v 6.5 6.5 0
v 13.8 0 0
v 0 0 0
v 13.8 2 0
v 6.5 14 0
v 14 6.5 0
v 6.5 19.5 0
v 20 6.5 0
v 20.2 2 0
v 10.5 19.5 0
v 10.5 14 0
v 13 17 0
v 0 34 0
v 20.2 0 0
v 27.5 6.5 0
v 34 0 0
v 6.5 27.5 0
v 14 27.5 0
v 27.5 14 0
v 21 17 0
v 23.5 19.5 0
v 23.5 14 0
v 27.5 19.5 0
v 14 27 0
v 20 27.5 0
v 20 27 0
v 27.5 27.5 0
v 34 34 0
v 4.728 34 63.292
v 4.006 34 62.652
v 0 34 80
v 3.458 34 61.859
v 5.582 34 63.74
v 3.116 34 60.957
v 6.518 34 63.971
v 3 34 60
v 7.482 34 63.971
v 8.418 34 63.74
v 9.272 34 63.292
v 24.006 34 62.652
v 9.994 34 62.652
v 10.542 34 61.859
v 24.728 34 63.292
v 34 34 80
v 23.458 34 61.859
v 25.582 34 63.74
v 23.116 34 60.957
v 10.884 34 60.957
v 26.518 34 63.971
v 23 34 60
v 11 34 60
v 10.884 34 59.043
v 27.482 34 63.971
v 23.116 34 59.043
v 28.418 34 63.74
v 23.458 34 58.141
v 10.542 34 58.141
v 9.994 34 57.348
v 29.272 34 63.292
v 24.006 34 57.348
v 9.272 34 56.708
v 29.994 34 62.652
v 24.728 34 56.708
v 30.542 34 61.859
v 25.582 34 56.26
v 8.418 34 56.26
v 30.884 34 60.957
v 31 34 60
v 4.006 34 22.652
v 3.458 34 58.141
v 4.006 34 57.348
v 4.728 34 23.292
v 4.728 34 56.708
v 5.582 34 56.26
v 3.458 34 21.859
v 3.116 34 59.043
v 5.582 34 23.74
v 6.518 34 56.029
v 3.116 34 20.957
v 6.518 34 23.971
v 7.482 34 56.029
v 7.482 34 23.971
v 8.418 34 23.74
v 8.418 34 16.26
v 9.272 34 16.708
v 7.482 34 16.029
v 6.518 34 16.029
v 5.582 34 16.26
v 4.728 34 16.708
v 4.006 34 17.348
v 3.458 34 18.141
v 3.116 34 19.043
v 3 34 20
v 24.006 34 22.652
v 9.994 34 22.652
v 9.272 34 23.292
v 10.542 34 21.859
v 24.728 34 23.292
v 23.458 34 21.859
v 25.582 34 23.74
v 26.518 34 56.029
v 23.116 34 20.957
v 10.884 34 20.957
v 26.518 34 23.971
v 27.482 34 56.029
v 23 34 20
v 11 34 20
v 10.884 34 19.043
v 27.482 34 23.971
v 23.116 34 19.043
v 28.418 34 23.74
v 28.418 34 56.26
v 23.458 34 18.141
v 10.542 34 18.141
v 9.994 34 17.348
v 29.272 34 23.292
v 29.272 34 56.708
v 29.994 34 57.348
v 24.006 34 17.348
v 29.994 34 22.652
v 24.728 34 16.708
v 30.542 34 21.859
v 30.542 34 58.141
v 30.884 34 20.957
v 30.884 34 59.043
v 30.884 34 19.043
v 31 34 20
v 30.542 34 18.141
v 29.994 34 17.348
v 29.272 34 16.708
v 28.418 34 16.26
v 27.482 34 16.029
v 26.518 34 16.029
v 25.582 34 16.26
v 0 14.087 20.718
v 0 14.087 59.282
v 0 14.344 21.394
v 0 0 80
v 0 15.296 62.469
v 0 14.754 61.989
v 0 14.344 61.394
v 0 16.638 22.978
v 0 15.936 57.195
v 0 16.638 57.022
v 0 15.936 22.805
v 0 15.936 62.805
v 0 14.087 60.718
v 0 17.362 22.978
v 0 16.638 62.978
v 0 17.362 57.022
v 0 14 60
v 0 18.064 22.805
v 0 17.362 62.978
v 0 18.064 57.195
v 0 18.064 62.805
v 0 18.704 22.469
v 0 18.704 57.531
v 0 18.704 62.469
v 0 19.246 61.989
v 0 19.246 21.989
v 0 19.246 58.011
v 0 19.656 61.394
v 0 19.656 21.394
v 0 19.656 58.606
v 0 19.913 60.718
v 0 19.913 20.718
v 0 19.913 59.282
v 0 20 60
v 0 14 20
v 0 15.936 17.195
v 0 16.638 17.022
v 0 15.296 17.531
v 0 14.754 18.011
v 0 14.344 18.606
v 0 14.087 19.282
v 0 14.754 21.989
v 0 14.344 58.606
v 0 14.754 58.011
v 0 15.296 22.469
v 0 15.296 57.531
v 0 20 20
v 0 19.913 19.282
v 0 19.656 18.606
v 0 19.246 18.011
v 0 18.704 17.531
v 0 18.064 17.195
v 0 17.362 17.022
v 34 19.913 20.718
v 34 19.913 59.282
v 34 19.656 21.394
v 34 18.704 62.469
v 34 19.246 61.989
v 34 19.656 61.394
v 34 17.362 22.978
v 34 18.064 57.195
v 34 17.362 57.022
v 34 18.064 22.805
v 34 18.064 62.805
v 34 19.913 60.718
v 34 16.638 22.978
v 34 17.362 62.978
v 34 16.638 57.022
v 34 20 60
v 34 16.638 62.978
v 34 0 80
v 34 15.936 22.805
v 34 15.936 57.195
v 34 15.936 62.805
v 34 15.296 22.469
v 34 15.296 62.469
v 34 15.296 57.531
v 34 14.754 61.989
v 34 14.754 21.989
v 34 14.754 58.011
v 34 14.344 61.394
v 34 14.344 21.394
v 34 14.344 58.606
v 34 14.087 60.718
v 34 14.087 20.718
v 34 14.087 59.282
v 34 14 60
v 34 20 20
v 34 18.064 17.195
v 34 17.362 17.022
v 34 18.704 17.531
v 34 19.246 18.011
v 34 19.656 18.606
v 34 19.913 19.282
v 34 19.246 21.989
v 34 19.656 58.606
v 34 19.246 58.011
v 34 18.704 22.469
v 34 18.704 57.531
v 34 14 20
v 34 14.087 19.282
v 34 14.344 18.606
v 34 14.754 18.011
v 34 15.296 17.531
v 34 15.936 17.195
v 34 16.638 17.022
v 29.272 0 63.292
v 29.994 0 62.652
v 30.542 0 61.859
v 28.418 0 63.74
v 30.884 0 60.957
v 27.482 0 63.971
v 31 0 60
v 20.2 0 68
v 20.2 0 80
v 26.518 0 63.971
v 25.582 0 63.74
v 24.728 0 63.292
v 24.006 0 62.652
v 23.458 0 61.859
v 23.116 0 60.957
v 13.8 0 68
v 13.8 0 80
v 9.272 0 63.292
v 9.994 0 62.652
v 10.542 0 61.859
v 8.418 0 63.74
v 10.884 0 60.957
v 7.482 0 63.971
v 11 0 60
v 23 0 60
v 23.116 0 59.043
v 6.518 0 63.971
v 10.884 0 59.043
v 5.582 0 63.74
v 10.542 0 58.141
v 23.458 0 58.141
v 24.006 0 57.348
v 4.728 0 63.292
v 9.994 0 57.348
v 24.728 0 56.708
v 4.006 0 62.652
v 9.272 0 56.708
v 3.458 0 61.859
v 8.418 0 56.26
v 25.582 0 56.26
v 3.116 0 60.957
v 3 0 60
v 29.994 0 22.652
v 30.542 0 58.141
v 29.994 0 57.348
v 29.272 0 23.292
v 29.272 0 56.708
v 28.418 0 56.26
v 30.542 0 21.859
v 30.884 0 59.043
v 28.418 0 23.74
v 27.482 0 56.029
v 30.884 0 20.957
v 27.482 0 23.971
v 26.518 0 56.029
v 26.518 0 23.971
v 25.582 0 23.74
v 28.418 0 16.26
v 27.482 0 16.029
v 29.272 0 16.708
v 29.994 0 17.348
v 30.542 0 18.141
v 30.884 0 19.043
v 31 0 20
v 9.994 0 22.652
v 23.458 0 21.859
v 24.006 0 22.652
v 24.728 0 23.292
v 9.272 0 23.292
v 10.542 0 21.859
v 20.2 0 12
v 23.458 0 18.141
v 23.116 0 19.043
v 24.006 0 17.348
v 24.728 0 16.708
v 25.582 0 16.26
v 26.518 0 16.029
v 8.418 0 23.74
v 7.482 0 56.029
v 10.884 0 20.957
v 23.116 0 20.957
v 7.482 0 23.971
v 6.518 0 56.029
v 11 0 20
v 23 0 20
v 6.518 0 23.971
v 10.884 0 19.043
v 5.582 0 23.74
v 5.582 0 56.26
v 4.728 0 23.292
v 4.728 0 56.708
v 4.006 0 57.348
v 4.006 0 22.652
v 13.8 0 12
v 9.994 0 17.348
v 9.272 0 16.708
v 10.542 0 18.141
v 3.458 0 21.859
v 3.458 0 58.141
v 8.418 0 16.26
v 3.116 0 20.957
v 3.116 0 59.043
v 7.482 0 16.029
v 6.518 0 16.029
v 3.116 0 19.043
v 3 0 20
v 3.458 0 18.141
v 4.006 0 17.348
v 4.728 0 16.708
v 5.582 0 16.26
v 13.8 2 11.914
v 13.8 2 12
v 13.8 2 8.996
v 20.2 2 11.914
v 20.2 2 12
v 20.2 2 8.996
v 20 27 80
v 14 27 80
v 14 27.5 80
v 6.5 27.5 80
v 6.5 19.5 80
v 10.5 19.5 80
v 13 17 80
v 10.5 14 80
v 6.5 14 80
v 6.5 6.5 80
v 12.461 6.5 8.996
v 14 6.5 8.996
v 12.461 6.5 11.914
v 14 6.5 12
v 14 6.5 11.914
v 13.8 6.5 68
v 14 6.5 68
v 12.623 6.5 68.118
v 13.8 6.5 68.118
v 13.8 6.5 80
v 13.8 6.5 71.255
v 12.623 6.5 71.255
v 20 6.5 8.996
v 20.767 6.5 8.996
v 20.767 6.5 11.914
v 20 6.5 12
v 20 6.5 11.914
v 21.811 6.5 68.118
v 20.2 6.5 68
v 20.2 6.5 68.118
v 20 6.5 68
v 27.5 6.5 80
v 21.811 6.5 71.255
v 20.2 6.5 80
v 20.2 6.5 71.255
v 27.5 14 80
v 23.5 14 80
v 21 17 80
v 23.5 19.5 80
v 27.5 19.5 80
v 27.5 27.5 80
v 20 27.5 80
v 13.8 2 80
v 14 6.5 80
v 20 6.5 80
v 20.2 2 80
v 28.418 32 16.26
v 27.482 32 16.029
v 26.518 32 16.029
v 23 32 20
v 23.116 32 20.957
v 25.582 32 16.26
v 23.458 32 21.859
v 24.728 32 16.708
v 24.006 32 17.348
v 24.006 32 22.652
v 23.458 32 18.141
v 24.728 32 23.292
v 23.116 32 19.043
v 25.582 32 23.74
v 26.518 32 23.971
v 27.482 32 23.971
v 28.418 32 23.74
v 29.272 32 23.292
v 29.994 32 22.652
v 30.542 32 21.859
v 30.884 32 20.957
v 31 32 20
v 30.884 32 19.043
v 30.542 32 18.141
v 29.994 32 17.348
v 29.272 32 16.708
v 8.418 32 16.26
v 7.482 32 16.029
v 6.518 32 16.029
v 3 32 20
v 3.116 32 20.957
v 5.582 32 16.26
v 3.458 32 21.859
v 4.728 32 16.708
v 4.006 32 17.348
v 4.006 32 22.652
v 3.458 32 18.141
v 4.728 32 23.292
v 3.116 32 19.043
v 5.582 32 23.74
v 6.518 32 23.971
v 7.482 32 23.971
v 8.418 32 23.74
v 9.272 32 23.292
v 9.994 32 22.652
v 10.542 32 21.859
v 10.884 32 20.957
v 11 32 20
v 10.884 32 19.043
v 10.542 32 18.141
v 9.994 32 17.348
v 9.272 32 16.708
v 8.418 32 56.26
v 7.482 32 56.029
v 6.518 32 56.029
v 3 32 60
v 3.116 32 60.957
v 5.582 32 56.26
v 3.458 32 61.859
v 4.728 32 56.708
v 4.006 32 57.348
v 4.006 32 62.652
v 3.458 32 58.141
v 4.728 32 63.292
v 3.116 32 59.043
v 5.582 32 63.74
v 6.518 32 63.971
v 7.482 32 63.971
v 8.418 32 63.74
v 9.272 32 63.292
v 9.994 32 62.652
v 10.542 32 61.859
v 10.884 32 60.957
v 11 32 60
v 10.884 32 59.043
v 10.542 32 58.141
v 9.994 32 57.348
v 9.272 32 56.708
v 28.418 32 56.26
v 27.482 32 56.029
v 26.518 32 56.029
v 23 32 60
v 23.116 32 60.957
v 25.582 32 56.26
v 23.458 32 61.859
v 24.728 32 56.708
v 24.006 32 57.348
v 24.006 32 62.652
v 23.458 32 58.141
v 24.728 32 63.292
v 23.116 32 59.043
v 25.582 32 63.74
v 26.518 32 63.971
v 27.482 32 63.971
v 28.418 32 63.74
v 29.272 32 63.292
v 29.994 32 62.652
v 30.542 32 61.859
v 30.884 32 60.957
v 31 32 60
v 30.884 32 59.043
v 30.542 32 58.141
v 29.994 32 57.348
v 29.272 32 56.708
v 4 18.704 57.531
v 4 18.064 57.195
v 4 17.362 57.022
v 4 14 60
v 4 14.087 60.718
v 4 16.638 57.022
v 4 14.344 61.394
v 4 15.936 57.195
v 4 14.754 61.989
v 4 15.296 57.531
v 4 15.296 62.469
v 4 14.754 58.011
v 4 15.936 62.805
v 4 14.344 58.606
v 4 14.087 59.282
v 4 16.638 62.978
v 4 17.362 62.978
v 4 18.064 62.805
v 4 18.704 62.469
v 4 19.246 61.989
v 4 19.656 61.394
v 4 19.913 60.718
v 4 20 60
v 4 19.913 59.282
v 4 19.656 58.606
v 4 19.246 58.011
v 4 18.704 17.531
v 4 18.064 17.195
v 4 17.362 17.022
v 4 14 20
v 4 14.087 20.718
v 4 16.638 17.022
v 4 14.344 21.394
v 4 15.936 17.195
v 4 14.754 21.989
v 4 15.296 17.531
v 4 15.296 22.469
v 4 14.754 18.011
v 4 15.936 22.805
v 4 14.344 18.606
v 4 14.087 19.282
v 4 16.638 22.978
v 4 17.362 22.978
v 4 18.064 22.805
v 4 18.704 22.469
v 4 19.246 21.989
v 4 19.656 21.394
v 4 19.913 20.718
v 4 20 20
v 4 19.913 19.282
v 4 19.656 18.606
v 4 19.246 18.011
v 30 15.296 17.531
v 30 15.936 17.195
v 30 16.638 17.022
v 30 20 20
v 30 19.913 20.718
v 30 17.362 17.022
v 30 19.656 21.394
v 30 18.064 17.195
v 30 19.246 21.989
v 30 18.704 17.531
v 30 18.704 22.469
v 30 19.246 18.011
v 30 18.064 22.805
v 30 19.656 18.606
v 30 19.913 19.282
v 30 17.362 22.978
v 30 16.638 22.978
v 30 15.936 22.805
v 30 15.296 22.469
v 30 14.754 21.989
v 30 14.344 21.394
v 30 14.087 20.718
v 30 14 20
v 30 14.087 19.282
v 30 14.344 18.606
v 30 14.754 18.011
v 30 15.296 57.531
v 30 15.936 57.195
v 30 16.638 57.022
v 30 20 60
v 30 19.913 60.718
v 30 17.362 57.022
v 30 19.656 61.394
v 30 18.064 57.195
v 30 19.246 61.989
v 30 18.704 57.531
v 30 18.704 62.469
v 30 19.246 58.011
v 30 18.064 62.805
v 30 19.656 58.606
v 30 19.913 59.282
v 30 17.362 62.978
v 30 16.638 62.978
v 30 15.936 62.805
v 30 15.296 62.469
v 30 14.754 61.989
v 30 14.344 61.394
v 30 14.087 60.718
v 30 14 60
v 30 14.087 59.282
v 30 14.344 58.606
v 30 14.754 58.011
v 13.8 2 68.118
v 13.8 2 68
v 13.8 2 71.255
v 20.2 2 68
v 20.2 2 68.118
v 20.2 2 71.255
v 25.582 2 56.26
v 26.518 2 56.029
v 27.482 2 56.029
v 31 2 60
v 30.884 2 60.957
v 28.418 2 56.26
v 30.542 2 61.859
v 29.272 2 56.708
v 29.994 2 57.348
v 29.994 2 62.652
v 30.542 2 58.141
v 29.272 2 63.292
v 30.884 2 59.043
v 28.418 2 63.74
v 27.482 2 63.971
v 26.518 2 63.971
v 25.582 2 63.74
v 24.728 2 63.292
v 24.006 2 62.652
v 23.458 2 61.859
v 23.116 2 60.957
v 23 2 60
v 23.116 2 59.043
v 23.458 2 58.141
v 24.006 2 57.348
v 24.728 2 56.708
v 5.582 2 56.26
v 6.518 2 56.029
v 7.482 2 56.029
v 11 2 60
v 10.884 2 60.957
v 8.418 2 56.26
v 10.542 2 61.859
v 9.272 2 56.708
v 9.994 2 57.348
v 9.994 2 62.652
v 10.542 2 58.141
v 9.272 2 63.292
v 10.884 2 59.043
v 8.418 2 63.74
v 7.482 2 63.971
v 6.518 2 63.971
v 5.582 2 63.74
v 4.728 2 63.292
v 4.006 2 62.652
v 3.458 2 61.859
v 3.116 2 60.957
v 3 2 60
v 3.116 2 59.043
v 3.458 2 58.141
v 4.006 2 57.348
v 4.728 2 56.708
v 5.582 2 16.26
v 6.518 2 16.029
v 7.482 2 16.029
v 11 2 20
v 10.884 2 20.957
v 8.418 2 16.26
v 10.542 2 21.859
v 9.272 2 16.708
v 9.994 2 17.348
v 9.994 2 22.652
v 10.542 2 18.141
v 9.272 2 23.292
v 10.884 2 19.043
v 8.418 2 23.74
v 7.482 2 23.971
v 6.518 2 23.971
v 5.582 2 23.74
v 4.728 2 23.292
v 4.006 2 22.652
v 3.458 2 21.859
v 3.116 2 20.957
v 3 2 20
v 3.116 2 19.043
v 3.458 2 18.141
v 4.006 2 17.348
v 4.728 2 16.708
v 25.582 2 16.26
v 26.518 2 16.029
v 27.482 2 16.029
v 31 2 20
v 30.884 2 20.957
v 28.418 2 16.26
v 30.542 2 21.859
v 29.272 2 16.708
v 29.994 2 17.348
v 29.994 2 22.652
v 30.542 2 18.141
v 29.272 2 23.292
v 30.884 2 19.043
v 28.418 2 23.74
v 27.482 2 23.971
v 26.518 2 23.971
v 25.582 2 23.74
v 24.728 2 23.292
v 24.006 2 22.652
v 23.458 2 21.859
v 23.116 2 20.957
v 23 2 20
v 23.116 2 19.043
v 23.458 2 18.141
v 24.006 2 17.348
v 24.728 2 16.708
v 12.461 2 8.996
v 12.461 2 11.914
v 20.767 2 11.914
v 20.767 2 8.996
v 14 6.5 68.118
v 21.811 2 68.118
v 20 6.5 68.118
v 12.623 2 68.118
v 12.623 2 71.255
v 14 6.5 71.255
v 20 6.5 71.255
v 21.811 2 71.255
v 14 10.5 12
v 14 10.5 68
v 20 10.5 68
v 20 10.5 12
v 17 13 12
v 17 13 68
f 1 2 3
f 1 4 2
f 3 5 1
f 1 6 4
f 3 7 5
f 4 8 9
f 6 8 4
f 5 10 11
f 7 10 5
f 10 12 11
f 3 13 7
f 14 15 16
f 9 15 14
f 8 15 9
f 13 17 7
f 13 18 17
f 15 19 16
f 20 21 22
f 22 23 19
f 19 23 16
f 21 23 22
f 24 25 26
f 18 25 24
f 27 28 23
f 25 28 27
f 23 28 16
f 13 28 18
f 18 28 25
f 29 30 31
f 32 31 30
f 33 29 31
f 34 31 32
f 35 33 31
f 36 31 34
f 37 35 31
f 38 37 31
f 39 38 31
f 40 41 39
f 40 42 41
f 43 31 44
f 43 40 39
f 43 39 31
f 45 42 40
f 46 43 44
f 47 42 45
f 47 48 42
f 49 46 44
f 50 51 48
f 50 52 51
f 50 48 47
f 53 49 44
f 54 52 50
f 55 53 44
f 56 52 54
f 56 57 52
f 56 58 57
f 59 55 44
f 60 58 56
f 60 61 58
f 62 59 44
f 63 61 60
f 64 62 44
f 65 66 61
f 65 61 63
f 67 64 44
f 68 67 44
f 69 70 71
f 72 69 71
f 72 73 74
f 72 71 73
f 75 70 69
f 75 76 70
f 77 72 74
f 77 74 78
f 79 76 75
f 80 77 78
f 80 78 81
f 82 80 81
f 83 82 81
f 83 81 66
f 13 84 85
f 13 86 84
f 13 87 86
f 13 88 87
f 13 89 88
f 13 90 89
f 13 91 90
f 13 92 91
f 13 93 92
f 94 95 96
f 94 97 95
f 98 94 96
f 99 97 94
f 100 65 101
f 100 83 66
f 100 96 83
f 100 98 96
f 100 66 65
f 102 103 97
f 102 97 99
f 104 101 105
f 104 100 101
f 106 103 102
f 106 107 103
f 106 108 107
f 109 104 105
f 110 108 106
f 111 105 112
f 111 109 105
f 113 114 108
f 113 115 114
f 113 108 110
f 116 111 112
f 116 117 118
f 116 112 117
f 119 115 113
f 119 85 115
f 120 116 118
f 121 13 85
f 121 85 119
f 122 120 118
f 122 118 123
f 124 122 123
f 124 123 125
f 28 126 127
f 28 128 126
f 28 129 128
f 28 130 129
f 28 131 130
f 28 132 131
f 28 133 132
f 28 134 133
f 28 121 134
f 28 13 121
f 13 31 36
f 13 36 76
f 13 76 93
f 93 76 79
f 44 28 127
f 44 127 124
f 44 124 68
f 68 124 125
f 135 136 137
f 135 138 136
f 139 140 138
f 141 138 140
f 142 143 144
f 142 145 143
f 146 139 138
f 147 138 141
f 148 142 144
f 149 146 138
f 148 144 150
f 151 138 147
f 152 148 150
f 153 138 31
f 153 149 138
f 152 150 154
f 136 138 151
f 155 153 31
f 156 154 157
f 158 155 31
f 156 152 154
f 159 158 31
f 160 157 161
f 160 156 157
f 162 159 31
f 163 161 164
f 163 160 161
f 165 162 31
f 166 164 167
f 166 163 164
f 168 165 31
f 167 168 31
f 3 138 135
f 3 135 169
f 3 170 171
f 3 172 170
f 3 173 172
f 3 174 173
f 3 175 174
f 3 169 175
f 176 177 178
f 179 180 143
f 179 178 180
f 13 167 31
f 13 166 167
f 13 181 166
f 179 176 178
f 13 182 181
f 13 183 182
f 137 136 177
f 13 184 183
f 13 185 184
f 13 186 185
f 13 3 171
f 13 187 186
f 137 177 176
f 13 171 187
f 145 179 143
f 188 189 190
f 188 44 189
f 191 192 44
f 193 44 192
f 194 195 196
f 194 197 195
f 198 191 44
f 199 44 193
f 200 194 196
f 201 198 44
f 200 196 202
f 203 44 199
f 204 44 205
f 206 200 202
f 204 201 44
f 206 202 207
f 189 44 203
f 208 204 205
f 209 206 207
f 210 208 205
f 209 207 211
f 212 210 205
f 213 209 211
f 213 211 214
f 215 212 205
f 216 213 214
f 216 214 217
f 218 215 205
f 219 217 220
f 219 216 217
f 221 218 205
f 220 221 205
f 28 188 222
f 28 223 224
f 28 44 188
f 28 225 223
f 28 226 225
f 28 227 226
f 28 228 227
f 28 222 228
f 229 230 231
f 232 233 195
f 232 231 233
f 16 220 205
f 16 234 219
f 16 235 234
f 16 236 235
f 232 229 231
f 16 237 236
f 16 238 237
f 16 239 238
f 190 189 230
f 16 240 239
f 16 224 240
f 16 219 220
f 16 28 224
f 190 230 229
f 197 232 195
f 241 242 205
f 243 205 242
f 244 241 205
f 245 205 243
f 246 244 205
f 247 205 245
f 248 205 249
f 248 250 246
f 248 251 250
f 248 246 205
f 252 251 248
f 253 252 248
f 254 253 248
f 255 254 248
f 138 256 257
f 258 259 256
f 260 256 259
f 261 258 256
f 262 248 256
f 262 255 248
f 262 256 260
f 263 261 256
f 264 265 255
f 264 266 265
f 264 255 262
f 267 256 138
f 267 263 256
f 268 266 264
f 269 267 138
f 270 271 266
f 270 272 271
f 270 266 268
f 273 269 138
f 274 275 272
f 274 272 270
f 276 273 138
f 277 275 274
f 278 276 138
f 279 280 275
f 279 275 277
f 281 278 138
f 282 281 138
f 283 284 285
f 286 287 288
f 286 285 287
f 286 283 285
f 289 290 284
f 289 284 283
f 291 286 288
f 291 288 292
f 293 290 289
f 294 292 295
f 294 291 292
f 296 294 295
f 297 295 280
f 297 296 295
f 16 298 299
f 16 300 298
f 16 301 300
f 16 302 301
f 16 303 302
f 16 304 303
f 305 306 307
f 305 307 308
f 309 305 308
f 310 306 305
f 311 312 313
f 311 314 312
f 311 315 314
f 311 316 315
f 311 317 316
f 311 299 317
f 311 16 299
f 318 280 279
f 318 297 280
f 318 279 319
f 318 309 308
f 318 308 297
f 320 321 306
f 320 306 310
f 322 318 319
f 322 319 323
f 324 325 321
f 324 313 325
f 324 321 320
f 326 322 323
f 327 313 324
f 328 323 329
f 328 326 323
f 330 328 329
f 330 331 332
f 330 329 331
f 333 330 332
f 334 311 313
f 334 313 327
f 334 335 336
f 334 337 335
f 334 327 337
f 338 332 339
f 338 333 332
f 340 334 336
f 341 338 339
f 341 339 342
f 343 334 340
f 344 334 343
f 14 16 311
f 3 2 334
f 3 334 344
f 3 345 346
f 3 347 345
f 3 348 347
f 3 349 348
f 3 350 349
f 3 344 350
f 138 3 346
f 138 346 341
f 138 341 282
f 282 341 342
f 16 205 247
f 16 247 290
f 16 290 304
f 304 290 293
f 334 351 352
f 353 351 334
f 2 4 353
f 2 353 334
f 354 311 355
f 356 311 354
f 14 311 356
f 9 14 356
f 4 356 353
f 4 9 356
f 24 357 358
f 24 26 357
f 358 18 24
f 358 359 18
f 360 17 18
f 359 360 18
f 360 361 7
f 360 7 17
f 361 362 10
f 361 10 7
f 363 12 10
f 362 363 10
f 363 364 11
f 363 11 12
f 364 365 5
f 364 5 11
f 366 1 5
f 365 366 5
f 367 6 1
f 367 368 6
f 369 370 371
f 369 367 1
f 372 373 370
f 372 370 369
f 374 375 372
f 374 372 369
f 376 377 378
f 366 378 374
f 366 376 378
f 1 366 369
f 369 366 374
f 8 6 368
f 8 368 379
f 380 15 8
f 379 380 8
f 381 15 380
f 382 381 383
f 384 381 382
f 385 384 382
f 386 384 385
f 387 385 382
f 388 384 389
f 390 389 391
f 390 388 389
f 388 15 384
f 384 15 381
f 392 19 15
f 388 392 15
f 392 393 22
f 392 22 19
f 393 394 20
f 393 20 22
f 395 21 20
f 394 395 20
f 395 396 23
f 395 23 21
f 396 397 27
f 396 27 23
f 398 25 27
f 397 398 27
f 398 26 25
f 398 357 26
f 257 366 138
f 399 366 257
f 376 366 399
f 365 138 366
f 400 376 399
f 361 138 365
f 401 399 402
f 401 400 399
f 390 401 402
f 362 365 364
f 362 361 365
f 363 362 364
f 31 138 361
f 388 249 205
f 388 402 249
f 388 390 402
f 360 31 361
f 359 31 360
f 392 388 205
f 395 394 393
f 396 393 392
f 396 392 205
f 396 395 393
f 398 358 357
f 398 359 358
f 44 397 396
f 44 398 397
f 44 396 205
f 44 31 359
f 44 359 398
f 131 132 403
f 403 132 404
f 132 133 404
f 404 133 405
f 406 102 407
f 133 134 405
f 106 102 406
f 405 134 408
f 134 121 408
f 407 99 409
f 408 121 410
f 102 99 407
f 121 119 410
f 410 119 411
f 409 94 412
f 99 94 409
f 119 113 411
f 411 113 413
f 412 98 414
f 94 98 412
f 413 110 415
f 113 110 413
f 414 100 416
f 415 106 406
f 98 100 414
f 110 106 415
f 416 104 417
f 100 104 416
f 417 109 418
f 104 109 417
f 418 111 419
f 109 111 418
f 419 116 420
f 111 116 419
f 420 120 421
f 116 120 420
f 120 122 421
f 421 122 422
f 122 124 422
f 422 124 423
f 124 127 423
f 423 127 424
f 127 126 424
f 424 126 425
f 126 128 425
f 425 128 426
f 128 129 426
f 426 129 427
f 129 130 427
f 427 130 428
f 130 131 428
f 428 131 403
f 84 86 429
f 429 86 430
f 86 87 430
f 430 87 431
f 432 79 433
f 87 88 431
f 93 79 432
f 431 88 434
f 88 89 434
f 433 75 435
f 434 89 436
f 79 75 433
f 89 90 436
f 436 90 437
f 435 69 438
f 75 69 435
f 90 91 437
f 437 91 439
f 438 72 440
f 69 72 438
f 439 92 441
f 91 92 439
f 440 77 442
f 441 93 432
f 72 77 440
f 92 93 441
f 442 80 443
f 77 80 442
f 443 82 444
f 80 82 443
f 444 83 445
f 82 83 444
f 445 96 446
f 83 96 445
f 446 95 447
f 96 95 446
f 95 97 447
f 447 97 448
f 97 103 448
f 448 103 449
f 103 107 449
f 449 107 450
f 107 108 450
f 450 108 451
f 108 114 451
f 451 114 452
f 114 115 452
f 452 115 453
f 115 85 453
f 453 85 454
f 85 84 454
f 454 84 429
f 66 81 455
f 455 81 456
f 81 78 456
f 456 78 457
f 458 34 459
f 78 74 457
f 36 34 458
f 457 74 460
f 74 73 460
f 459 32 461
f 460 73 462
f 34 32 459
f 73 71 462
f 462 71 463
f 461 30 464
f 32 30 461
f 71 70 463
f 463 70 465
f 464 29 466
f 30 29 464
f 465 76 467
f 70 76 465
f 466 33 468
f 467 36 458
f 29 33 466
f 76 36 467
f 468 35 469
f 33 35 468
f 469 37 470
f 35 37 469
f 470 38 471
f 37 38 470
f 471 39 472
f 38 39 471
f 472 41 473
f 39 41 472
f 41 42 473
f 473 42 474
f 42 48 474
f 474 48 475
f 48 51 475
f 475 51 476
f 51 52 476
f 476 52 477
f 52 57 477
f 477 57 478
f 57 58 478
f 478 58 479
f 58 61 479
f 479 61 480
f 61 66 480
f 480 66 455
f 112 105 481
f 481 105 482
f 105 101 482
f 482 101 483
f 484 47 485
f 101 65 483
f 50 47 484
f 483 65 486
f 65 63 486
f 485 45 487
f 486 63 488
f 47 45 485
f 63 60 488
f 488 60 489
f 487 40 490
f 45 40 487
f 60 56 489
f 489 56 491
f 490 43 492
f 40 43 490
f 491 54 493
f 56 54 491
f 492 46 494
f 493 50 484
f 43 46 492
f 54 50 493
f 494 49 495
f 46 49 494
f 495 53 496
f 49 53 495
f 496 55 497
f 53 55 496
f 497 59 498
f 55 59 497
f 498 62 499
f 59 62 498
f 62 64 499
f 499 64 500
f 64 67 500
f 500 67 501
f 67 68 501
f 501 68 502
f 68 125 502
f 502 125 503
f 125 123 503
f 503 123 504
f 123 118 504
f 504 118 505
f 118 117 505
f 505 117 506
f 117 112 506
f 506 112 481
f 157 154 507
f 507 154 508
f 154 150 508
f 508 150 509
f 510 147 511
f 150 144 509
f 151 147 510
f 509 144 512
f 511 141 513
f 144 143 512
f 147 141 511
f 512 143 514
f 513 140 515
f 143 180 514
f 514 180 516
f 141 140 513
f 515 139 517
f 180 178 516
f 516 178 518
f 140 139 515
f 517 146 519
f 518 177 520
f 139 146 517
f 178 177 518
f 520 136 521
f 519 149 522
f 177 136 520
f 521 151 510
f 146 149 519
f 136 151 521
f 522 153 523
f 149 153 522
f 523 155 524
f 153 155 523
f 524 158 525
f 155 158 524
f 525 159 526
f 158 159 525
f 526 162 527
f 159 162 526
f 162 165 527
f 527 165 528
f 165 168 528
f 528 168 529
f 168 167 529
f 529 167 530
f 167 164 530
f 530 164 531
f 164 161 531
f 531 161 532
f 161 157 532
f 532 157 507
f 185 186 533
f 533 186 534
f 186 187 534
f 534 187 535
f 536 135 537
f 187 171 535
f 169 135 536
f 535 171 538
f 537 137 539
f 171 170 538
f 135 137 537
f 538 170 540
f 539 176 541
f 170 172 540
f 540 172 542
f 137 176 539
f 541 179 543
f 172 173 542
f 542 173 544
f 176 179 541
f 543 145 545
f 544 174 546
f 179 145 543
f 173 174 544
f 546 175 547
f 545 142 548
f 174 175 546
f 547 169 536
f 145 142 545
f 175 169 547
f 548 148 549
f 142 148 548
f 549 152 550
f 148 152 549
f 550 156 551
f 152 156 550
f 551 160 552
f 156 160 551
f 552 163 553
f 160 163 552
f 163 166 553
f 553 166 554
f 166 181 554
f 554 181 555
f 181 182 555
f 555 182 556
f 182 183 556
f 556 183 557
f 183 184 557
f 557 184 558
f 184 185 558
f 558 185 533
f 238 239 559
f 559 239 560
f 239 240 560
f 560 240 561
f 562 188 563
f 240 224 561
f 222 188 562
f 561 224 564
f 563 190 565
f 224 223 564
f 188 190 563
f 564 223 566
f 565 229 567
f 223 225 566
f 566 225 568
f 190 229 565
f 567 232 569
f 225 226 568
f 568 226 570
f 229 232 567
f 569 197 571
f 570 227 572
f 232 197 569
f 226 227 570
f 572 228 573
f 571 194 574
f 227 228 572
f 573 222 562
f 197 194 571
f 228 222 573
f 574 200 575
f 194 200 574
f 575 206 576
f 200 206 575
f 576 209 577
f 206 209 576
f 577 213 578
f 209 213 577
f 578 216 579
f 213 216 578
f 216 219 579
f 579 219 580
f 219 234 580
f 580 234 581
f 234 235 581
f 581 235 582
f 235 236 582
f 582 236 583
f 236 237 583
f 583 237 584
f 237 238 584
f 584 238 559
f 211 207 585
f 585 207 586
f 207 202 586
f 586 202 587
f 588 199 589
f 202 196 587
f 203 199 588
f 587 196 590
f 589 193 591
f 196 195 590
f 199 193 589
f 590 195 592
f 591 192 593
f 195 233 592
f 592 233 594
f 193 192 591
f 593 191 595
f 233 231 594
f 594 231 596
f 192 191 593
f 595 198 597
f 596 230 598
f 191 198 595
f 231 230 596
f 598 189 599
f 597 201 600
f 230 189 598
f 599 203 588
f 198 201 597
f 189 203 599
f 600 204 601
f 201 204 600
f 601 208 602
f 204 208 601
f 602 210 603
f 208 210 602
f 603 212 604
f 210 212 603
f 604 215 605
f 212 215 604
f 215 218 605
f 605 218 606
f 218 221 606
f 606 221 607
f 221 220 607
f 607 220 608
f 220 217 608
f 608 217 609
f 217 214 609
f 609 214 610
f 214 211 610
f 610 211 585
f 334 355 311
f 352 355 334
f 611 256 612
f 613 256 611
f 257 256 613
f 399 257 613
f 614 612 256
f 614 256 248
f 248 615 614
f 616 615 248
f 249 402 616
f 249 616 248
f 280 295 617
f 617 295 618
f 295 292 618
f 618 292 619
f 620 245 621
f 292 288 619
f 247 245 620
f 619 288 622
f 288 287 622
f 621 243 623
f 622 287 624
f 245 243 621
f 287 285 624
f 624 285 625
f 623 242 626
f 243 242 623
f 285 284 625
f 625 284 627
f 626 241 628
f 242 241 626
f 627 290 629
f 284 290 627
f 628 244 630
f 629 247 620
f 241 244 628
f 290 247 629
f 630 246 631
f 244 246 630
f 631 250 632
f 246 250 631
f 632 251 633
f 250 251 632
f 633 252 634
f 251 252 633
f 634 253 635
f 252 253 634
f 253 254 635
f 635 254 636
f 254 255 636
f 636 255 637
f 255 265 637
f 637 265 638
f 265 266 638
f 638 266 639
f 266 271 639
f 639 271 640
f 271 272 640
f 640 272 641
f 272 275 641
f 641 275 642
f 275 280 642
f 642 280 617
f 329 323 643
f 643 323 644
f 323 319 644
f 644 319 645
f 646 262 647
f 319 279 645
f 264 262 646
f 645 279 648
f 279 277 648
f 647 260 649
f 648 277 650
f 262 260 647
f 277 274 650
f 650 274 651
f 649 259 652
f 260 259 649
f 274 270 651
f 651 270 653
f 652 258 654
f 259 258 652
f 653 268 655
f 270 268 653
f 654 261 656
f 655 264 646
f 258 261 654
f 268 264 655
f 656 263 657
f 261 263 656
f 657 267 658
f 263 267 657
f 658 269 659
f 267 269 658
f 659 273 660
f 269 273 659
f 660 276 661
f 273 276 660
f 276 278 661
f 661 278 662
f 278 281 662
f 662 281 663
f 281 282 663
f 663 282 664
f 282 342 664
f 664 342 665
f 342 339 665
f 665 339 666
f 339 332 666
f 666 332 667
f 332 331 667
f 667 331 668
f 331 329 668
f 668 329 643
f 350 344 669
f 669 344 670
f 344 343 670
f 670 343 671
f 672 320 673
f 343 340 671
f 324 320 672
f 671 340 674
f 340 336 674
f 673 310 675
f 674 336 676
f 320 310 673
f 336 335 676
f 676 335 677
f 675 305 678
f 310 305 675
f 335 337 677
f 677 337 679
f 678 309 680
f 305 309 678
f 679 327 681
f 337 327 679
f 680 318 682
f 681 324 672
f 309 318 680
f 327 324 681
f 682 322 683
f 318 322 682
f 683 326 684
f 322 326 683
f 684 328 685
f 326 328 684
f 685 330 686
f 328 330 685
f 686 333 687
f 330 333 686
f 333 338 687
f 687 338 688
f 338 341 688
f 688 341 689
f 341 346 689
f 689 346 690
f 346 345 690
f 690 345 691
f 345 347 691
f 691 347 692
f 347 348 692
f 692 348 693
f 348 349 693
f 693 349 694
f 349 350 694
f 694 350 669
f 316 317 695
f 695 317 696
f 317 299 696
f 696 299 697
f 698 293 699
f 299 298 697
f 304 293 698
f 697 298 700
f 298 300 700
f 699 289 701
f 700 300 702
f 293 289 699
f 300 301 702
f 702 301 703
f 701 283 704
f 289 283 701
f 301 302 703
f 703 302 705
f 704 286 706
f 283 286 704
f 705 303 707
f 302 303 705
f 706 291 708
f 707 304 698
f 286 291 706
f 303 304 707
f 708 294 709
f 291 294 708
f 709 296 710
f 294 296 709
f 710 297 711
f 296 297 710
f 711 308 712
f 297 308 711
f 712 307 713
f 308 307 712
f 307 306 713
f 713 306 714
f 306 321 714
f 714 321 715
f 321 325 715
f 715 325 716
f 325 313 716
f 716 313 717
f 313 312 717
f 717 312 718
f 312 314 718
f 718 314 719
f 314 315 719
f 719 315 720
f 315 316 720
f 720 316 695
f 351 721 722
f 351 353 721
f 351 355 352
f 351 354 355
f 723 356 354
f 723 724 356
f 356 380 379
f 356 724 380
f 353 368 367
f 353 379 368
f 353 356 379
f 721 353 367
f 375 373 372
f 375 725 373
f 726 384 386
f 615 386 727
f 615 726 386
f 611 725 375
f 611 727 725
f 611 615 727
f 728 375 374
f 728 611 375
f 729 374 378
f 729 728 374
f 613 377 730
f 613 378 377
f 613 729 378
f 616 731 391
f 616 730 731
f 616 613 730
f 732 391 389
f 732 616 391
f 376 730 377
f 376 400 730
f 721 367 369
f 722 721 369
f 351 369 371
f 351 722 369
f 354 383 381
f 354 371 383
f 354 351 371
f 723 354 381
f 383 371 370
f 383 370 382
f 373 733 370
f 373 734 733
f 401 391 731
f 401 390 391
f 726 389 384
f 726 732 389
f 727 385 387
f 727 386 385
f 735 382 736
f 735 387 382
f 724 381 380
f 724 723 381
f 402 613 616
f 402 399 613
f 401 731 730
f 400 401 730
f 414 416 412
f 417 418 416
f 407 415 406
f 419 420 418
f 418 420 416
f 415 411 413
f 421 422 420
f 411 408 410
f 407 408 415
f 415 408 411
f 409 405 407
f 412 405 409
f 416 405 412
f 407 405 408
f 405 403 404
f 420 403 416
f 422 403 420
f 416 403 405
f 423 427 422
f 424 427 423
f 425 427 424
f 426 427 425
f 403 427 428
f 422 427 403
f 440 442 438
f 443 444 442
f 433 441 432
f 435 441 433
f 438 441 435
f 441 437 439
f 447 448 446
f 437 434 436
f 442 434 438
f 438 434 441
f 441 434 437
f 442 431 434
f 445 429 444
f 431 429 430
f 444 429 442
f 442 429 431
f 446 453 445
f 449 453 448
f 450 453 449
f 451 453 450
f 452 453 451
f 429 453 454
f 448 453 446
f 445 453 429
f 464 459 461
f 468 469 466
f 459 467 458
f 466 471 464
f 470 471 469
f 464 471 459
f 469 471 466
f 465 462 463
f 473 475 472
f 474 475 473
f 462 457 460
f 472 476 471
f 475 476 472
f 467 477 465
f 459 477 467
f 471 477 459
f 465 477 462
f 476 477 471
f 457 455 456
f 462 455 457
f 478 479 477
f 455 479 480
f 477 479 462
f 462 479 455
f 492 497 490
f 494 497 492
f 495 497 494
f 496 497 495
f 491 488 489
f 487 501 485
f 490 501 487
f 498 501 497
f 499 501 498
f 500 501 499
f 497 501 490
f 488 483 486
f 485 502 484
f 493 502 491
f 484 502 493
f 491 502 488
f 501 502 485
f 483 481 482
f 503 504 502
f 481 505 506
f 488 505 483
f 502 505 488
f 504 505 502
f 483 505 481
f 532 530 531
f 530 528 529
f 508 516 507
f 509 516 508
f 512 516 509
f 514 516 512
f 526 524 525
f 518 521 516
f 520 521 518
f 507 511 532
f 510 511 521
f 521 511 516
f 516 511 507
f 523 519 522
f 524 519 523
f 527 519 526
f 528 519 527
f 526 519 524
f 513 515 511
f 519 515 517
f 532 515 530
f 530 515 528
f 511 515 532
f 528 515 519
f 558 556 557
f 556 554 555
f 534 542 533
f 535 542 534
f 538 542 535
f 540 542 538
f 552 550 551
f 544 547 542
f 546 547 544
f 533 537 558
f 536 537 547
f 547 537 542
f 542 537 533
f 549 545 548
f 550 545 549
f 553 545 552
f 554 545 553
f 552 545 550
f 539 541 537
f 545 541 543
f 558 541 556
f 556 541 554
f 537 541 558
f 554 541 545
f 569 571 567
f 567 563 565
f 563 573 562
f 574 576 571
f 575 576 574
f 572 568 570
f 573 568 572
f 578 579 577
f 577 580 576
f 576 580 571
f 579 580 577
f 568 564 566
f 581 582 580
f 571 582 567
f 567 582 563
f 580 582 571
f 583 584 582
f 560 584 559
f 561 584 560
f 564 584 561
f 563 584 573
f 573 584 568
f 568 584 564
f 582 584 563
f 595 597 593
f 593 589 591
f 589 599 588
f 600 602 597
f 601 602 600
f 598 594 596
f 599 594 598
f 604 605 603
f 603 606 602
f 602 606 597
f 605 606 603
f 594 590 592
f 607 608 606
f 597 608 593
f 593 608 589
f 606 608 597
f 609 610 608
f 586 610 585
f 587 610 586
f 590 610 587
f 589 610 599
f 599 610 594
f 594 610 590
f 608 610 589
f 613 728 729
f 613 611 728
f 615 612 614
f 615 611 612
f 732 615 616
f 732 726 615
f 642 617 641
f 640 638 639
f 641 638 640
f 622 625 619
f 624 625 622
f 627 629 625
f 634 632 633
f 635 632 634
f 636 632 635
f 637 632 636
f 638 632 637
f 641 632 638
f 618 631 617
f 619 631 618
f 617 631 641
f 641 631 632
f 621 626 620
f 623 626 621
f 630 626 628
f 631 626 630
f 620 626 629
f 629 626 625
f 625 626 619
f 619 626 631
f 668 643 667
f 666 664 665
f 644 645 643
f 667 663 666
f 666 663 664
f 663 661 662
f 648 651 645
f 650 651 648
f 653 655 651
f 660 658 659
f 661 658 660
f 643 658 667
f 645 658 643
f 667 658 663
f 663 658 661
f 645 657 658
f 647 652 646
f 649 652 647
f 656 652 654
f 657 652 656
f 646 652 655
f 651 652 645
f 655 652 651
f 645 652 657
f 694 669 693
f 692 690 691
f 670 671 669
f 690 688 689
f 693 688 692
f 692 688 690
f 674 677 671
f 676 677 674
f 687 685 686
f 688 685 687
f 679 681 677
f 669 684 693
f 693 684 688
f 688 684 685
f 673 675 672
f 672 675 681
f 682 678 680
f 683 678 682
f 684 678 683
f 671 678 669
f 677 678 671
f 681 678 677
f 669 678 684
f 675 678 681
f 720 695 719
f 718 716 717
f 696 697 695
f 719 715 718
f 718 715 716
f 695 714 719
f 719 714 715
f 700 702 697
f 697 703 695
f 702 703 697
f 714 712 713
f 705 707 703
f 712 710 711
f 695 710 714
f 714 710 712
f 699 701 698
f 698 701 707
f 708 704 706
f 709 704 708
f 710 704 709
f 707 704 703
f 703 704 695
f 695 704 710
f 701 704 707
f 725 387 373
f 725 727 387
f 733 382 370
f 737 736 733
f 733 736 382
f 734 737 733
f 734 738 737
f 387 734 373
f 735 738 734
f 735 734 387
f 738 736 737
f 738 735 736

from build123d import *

# Parameters (mm, degrees)
SKETCH_W        = 34
SKETCH_H        = 34
PAD_DEPTH       = 80
POCKET_DEPTH    = 80
SKETCH002_R     = 3
POCKET001_DEPTH = 4
SKETCH003_R     = 3
POCKET002_DEPTH = 4
SKETCH004_R     = 4
POCKET003_DEPTH = 2
SKETCH005_R     = 4
POCKET004_DEPTH = 2
SKETCH006_W     = 6.4
SKETCH006_H     = 2
SKETCH006_H_2   = 7
POCKET005_DEPTH = 12
SKETCH007_W     = 6.4
SKETCH007_H     = 2
SKETCH007_W_2   = 6
SKETCH007_H_2   = 6.6
POCKET006_DEPTH = 12
CHAMFER_SIZE    = 1.98
SKETCH008_W     = 8
SKETCH008_H     = 5
POCKET007_DEPTH = 80
SKETCH009_W     = 9.188405
SKETCH009_H     = 3.137501
POCKET008_DEPTH = 8
SKETCH010_W     = 8.306599
SKETCH010_H     = 2.918531
POCKET009_DEPTH = 8


with BuildPart() as part:
    # Sketch → Pad (new body)
    with BuildSketch(Plane.XY):
        with Locations((17, 17)):
            Rectangle(SKETCH_W, SKETCH_H)
    extrude(amount=PAD_DEPTH)

    # Sketch001 (on Face6 of Pad) → Pocket (cut)
    with BuildSketch(Plane.XY.offset(80)):
        Polygon((6.5, 27.5), (14, 27.5), (14, 23.5), (17, 21), (20, 23.5), (20, 27.5), (27.5, 27.5), (27.5, 19.5), (23.5, 19.5), (21, 17), (23.5, 14), (27.5, 14), (27.5, 6.5), (20, 6.5), (20, 10.5), (17, 13), (14, 10.5), (14, 6.5), (6.5, 6.5), (6.5, 14), (10.5, 14), (13, 17), (10.5, 19.5), (6.5, 19.5), align=None)
    extrude(amount=-POCKET_DEPTH, mode=Mode.SUBTRACT)

    # Sketch002 (on Face2 of Pocket) → Pocket001 (cut)
    with BuildSketch(Plane(origin=(0, 0, 0), x_dir=(0, -1, 0), z_dir=(-1, 0, 0))):
        with Locations((-17, 60)):
            Circle(SKETCH002_R)
        with Locations((-17, 20)):
            Circle(SKETCH002_R)
    extrude(amount=-POCKET001_DEPTH, mode=Mode.SUBTRACT)

    # Sketch003 (on Face3 of Pocket001) → Pocket002 (cut)
    with BuildSketch(Plane.YZ.offset(34)):
        with Locations((17, 60)):
            Circle(SKETCH003_R)
        with Locations((17, 20)):
            Circle(SKETCH003_R)
    extrude(amount=-POCKET002_DEPTH, mode=Mode.SUBTRACT)

    # Sketch004 (on Face1 of Pocket002) → Pocket003 (cut)
    with BuildSketch(Plane(origin=(0, 34, 0), x_dir=(-1, 0, 0), z_dir=(0, 1, 0))):
        with Locations((-27, 60)):
            Circle(SKETCH004_R)
        with Locations((-7, 60)):
            Circle(SKETCH004_R)
        with Locations((-27, 20)):
            Circle(SKETCH004_R)
        with Locations((-7, 20)):
            Circle(SKETCH004_R)
    extrude(amount=-POCKET003_DEPTH, mode=Mode.SUBTRACT)

    # Sketch005 (on Face10 of Pocket003) → Pocket004 (cut)
    with BuildSketch(Plane.XZ):
        with Locations((7, 60)):
            Circle(SKETCH005_R)
        with Locations((27, 60)):
            Circle(SKETCH005_R)
        with Locations((7, 20)):
            Circle(SKETCH005_R)
        with Locations((27, 20)):
            Circle(SKETCH005_R)
    extrude(amount=-POCKET004_DEPTH, mode=Mode.SUBTRACT)

    # Sketch006 (on Face4 of Pocket004) → Pocket005 (cut)
    with BuildSketch(Plane.XY.offset(80)):
        with Locations((17, 1)):
            Rectangle(SKETCH006_W, SKETCH006_H)
        with Locations((17, 10)):
            Rectangle(SKETCH006_W, SKETCH006_H_2)
    extrude(amount=-POCKET005_DEPTH, mode=Mode.SUBTRACT)

    # Sketch007 (on Face3 of Pocket005) → Pocket006 (cut)
    with BuildSketch(Plane(origin=(0, 0, 0), x_dir=(1, 0, 0), z_dir=(0, 0, -1))):
        with Locations((17, -1)):
            Rectangle(SKETCH007_W, SKETCH007_H)
        with Locations((17, -9.8)):
            Rectangle(SKETCH007_W_2, SKETCH007_H_2)
    extrude(amount=-POCKET006_DEPTH, mode=Mode.SUBTRACT)

    # Chamfer
    chamfer_edges = [part.edges().sort_by_distance(p)[0] for p in [
        (17, 21, 40),
    ]]
    chamfer(chamfer_edges, length=CHAMFER_SIZE)

    # Sketch008 (on Face1 of Chamfer) → Pocket007 (cut)
    with BuildSketch(Plane(origin=(0, 0, 0), x_dir=(1, 0, 0), z_dir=(0, 0, -1))):
        with Locations((17, -24.5)):
            Rectangle(SKETCH008_W, SKETCH008_H)
    extrude(amount=-POCKET007_DEPTH, mode=Mode.SUBTRACT)

    # Sketch009 (on Face8 of Pocket007) → Pocket008 (cut)
    with BuildSketch(Plane.XZ.offset(-2)):
        with Locations((17.216907, 69.686737)):
            Rectangle(SKETCH009_W, SKETCH009_H)
    extrude(amount=-POCKET008_DEPTH, mode=Mode.SUBTRACT)

    # Sketch010 (on Face8 of Pocket008) → Pocket009 (cut)
    with BuildSketch(Plane.XZ.offset(-2)):
        with Locations((16.61403, 10.454884)):
            Rectangle(SKETCH010_W, SKETCH010_H)
    extrude(amount=-POCKET009_DEPTH, mode=Mode.SUBTRACT)


solid = part.part
